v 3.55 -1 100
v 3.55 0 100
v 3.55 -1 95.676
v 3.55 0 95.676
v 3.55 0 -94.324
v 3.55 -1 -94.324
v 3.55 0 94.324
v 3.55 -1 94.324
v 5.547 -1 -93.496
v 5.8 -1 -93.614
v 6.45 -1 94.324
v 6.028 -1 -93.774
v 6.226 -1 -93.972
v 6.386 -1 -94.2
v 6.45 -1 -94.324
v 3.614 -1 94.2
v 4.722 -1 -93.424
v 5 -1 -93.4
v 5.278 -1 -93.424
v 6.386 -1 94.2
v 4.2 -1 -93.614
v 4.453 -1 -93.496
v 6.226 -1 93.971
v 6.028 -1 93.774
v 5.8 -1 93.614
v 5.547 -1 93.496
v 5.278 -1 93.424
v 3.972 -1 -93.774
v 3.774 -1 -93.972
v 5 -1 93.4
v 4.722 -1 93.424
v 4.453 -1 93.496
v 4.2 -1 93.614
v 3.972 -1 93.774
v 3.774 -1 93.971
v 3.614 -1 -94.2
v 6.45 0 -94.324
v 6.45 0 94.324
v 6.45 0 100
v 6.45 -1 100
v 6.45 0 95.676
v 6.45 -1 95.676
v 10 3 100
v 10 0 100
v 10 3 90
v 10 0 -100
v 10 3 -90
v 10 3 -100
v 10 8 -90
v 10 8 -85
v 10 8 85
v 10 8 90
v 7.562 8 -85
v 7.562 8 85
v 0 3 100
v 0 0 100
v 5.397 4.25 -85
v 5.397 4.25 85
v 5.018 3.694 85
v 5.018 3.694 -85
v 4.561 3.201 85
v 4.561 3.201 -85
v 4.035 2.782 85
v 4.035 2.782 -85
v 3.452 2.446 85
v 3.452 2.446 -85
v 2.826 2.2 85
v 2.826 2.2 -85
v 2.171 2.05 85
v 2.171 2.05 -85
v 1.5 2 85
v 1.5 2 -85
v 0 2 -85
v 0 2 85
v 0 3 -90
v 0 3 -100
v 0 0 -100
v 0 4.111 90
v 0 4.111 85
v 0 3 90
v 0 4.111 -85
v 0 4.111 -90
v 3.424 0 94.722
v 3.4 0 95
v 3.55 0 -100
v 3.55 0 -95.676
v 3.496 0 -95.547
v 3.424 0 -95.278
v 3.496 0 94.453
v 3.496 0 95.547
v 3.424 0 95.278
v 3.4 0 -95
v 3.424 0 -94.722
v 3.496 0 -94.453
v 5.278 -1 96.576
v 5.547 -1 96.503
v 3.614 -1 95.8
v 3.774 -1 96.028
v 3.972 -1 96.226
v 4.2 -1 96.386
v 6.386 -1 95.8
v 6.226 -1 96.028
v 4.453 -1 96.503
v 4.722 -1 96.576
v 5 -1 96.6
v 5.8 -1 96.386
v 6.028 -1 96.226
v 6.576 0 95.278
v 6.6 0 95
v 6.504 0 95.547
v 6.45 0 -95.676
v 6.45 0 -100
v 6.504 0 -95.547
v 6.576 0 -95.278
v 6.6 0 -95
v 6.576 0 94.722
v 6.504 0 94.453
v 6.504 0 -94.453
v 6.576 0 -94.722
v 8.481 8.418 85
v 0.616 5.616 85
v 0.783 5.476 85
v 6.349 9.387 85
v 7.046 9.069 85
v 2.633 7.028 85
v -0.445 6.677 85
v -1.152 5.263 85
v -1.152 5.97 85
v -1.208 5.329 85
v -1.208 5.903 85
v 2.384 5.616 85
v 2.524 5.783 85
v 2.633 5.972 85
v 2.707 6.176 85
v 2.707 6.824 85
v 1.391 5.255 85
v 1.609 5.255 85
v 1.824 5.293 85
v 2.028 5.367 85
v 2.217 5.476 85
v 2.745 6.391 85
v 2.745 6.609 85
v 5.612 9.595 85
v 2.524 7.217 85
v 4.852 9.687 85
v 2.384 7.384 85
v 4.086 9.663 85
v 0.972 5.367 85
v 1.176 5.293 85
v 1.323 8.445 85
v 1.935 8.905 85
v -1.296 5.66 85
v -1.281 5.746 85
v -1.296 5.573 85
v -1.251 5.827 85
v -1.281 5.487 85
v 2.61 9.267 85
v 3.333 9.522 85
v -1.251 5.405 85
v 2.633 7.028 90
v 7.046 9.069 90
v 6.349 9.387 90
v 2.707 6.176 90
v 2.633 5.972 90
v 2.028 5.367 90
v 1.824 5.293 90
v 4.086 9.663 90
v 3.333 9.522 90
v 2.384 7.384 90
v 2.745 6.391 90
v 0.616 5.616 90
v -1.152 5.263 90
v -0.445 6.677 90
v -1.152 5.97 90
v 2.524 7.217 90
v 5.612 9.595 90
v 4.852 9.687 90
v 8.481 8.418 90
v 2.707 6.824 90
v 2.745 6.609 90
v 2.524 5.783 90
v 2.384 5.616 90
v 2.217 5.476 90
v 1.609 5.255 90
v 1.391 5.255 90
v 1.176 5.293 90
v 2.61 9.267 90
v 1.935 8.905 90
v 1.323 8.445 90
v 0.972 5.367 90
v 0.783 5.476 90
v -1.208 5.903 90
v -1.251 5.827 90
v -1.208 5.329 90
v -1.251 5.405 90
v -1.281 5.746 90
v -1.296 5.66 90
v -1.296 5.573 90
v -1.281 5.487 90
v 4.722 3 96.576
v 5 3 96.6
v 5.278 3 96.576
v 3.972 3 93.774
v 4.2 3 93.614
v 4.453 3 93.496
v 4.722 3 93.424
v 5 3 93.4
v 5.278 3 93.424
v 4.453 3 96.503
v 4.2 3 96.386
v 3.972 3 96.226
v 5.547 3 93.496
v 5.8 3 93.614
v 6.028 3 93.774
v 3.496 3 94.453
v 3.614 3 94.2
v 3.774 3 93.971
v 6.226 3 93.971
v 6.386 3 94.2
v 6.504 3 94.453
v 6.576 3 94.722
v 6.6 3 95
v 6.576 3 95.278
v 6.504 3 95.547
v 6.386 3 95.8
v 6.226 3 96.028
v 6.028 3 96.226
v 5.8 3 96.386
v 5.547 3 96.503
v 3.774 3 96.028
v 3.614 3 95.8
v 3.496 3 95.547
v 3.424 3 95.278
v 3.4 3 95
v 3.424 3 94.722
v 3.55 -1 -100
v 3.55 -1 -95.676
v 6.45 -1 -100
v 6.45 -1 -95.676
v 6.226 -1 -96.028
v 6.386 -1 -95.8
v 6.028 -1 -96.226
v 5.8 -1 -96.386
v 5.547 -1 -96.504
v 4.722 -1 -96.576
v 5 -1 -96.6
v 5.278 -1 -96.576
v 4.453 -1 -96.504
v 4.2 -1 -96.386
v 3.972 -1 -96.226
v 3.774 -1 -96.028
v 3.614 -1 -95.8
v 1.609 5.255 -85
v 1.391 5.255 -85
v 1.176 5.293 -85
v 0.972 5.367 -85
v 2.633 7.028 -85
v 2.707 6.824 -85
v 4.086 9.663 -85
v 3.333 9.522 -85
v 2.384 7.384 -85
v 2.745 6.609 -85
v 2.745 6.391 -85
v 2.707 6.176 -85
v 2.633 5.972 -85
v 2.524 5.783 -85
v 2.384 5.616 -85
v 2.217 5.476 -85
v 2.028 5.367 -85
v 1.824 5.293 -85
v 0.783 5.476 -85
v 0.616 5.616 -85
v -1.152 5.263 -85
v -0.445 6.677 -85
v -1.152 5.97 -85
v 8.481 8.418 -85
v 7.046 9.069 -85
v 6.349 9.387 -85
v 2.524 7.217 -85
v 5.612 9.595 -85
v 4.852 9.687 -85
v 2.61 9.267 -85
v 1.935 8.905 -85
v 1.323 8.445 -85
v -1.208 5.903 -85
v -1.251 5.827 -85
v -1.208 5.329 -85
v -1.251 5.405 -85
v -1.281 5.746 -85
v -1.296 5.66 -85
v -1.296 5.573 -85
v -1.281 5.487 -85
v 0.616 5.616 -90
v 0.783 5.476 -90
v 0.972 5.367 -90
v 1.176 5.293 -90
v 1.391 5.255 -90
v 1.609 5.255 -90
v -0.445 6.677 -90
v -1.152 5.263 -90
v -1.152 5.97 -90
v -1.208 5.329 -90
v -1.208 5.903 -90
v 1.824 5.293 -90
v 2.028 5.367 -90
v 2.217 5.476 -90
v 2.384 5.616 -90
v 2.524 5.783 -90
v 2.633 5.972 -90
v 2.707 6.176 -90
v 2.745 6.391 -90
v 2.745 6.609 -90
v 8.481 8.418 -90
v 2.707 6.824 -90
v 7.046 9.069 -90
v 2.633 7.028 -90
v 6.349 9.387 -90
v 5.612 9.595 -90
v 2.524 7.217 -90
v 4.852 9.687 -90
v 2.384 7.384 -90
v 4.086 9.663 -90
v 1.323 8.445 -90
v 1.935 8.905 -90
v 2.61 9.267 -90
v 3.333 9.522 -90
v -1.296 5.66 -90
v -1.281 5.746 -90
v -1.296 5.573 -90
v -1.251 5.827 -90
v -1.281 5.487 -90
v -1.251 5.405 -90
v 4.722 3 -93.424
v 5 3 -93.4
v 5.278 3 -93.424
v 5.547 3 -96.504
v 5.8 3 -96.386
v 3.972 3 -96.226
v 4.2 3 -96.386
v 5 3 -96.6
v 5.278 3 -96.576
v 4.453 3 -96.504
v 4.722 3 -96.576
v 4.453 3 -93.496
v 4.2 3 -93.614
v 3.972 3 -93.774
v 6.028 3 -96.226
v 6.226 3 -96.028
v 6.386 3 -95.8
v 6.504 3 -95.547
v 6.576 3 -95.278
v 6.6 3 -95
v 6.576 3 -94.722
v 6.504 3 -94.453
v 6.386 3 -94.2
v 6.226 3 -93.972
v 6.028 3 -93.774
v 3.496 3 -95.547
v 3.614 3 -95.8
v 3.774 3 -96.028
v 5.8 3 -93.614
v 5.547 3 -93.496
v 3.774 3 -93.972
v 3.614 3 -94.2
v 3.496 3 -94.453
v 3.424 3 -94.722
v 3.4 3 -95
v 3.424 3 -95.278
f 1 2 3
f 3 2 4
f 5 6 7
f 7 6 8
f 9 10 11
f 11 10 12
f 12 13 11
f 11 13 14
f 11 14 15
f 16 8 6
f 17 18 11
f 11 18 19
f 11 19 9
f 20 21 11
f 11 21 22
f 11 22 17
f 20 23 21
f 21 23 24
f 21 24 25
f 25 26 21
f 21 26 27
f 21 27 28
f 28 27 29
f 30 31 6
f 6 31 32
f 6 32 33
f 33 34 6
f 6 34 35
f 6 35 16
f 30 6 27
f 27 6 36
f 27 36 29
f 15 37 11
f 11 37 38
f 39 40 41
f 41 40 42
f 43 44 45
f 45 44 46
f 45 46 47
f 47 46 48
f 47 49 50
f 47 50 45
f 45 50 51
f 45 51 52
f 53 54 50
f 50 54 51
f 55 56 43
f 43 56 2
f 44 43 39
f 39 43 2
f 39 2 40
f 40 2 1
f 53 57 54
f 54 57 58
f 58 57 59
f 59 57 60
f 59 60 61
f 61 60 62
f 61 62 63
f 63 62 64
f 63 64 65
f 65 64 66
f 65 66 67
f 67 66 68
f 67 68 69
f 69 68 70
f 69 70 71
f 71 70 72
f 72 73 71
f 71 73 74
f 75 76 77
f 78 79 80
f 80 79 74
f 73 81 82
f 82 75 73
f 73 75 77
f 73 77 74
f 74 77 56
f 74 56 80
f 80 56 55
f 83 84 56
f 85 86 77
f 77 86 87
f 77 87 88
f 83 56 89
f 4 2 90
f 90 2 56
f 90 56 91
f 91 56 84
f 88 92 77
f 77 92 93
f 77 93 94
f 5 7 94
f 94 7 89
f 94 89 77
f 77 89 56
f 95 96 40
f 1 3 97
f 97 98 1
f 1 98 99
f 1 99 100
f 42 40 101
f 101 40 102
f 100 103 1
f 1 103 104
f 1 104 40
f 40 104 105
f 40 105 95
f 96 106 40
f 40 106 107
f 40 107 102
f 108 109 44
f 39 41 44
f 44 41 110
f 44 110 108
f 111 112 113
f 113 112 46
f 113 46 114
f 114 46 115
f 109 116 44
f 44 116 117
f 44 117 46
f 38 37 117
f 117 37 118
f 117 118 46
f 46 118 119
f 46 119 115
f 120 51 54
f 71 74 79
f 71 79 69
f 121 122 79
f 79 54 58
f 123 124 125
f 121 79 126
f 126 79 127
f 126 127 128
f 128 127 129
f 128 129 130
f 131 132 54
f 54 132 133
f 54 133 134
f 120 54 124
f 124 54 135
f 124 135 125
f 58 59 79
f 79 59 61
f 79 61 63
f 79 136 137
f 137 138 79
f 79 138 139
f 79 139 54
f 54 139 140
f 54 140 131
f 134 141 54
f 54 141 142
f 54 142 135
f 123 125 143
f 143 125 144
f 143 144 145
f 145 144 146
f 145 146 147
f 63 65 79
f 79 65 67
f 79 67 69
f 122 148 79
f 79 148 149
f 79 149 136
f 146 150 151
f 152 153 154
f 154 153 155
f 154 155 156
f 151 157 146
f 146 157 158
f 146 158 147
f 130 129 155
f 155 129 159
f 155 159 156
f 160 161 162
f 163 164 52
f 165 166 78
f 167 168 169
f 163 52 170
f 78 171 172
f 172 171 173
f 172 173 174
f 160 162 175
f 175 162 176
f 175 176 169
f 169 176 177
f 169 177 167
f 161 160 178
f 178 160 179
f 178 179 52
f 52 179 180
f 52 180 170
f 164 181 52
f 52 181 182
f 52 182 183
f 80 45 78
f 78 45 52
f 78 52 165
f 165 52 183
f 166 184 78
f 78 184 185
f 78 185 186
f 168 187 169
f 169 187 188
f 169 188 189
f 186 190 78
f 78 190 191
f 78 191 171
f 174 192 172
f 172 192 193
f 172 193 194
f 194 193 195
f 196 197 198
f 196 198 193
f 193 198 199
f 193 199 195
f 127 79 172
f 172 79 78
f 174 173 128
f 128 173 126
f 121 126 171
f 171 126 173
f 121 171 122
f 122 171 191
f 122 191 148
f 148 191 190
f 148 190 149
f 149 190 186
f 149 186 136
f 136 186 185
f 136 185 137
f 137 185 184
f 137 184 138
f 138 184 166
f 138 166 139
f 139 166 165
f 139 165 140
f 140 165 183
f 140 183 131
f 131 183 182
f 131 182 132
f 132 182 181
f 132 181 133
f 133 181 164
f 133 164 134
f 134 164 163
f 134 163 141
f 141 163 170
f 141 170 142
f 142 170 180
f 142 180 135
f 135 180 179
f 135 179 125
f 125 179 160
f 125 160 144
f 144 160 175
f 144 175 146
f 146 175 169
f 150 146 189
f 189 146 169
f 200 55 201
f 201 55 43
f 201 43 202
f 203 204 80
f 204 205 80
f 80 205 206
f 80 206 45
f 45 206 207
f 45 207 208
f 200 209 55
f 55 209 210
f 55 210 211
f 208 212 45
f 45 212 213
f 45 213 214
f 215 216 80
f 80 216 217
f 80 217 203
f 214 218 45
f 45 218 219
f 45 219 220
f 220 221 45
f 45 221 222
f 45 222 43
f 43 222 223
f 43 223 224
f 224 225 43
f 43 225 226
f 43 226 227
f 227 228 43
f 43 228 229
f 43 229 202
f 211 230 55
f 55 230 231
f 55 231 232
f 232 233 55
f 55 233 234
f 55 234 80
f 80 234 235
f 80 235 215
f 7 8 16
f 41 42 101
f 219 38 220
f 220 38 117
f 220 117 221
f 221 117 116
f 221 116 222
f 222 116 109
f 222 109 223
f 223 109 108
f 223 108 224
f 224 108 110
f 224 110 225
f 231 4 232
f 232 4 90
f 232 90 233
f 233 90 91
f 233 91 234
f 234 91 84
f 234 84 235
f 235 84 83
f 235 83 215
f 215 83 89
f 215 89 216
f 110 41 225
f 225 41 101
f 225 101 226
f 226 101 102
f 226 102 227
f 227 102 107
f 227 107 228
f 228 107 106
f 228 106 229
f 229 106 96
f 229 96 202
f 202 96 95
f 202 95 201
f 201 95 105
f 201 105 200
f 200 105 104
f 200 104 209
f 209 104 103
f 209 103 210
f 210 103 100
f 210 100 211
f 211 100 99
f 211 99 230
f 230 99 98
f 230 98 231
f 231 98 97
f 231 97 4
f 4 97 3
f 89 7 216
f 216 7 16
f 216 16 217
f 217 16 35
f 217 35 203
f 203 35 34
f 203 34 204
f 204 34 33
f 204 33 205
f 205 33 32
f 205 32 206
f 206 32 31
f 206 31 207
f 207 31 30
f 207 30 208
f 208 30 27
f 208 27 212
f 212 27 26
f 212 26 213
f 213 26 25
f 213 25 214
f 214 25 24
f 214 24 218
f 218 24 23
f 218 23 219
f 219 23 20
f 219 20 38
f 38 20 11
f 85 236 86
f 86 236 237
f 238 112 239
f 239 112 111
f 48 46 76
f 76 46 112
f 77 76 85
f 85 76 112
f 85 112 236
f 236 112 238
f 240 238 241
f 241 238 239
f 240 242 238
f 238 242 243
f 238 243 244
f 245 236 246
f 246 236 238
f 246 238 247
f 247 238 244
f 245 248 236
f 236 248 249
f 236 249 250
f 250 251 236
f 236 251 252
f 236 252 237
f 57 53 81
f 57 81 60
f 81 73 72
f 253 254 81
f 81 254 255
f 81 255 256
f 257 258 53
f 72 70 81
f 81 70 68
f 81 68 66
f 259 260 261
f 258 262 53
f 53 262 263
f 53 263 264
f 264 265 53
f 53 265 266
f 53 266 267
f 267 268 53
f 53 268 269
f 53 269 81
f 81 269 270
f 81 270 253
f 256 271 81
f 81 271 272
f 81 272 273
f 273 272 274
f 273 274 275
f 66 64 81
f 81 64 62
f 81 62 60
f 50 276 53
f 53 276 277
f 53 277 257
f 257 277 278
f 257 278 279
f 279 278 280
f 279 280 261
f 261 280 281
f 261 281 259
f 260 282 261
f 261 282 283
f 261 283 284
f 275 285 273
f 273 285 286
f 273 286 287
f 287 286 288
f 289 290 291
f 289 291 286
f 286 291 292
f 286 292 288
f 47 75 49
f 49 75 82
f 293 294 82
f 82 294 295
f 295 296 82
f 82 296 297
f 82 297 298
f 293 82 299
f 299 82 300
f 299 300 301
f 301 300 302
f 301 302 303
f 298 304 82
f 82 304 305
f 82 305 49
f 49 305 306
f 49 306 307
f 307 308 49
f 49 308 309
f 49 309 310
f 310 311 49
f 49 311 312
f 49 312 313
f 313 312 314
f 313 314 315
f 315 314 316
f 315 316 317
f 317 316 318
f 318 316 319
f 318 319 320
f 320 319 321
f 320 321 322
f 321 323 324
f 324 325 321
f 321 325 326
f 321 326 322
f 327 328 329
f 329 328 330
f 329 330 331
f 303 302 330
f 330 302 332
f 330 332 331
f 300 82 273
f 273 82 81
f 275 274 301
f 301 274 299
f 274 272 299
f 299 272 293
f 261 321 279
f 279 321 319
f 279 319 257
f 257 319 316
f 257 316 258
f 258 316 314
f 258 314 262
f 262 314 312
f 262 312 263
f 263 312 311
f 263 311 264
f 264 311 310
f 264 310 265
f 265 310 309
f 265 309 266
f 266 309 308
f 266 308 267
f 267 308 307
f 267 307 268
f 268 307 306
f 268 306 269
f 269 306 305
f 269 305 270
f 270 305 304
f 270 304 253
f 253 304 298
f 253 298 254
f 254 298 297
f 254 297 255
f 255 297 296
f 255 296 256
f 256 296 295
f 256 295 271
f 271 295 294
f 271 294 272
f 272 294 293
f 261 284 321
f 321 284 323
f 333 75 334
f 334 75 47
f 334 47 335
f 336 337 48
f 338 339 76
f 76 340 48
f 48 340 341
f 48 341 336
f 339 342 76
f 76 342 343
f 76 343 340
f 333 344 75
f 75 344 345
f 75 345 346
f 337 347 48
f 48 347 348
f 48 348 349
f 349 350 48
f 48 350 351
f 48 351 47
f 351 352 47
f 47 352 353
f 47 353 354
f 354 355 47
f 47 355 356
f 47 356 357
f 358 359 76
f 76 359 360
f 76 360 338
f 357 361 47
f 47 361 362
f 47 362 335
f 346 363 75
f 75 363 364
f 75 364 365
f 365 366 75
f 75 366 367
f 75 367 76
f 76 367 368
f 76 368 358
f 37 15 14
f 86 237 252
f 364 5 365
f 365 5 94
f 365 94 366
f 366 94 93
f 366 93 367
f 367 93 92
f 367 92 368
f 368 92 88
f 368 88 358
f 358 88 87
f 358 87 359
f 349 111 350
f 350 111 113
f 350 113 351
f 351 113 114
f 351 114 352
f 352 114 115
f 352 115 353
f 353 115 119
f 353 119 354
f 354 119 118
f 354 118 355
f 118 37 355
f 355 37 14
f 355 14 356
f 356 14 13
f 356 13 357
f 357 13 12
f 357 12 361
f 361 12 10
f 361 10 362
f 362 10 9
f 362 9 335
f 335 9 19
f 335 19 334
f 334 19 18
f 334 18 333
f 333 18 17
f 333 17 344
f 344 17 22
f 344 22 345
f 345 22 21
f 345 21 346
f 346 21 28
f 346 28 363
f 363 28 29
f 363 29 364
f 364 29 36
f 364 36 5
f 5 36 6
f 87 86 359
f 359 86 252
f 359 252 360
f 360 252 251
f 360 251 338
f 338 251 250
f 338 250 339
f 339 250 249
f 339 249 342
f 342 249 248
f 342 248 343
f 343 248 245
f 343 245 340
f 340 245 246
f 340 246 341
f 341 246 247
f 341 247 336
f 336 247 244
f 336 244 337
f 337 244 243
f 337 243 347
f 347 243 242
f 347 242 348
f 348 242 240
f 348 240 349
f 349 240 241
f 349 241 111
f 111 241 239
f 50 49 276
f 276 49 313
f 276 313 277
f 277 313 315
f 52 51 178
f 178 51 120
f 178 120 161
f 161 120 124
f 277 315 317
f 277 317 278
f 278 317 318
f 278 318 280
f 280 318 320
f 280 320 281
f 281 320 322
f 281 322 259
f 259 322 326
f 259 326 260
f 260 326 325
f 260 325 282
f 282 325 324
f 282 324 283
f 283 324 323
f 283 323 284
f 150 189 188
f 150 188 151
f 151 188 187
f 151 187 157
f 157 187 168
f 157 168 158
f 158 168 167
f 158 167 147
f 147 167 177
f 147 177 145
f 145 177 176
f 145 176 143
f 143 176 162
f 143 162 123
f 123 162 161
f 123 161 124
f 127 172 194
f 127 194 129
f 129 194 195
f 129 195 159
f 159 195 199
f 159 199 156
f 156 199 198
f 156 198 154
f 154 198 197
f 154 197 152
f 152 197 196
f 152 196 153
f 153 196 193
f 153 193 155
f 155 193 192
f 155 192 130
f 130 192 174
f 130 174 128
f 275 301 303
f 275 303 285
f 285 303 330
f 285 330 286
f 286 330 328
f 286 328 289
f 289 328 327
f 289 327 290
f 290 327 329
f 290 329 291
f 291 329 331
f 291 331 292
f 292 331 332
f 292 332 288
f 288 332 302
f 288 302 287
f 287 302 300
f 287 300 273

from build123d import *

# Parameters (mm, degrees)
MAIN_DEPTH                  = 100
FIXFORROLLINGCYLINDER_DEPTH = 5
SKETCH4_W                   = 10
SKETCH4_H                   = 10
HORIZONTALCUT_DEPTH         = 10
SKETCH7_W                   = 10
SKETCH7_H                   = 10
BOSS_EXTRUDE1_DEPTH         = 1
MAKERBEAMHOLE_DEPTH         = 101.931998276
MAKERBEAMHOLE_DEPTH_BACK    = 101.931998276
SKETCH5_R                   = 1.6
FILLET1_R                   = 10
FILLET2_R                   = 5
FILLET3_R                   = 0.5


with BuildPart() as part:
    # Sketch1 → Main (new body)
    with BuildSketch(Plane.XY):
        with BuildLine():
            Line((0, 0), (3.55, 0))
            Line((3.55, 0), (3.55, -1))
            Line((3.55, -1), (6.45, -1))
            Line((6.45, -1), (6.45, 0))
            Line((6.45, 0), (10, 0))
            Line((10, 0), (10, 8))
            Line((10, 8), (7.562177826, 8))
            Line((7.562177826, 8), (5.397114317, 4.25))
            ThreePointArc((5.397114317, 4.25), (3.75, 2.602885683), (1.5, 2))
            Line((1.5, 2), (0, 2))
            Line((0, 2), (0, 0))
        make_face()
    extrude(amount=MAIN_DEPTH)

    # Sketch3 → FixForRollingCylinder (add)
    with BuildSketch(Plane.XY.offset(90)):
        with BuildLine():
            Line((-1.50520382, 5.616116524), (0, 4.110912703))
            Line((0, 4.110912703), (0, 0))
            Line((0, 0), (10, 0))
            Line((10, 0), (10, 8))
            Line((10, 8), (7.562177826, 8))
            Line((7.562177826, 8), (4.220428741, 11.341749085))
            Line((4.220428741, 11.341749085), (1.323223305, 8.444543648))
            Line((1.323223305, 8.444543648), (2.383883476, 7.383883476))
            ThreePointArc((2.383883476, 7.383883476), (2.383883476, 5.616116524), (0.616116524, 5.616116524))
            Line((0.616116524, 5.616116524), (-0.444543648, 6.676776695))
            Line((-0.444543648, 6.676776695), (-1.50520382, 5.616116524))
        make_face()
    extrude(amount=-FIXFORROLLINGCYLINDER_DEPTH)

    # Sketch4 → HorizontalCut (cut)
    with BuildSketch(Plane(origin=(0, 3, 0), x_dir=(1, 0, 0), z_dir=(0, 1, 0))):
        with Locations((5, -95)):
            Rectangle(SKETCH4_W, SKETCH4_H)
    extrude(amount=HORIZONTALCUT_DEPTH, mode=Mode.SUBTRACT)

    # Sketch7 → Boss-Extrude1 (add)
    with BuildSketch(Plane(origin=(0, 3, 0), x_dir=(1, 0, 0), z_dir=(0, 1, 0))):
        with Locations((5, -95)):
            Rectangle(SKETCH7_W, SKETCH7_H)
    extrude(amount=-BOSS_EXTRUDE1_DEPTH)

    # Sketch5 → MakerBeamHole (cut, two sides: drawn at the far end of the back side and taken through both)
    with BuildSketch(Plane(origin=(0, 2, 0), x_dir=(1, 0, 0), z_dir=(0, 1, 0)).offset(-MAKERBEAMHOLE_DEPTH_BACK)):
        with Locations(Location((5, -95, 0), (0, 0, 25.007833235))):
            Circle(SKETCH5_R)
    extrude(amount=MAKERBEAMHOLE_DEPTH + MAKERBEAMHOLE_DEPTH_BACK, mode=Mode.SUBTRACT)

    # Mirror1: part across plane


with BuildPart() as part_1:
    add(part.part)
    add(part.part.mirror(Plane.XY))

    # Fillet1
    # the kernel refuses this fillet: 10 mm, written as the material it adds along each edge
    with BuildSketch(Plane(origin=(7.562177826, 8, -90), x_dir=(-0.7071067811865462, 0.7071067811865489, 0), z_dir=(0, 0, 1))) as fillet1_piece_1:
        with BuildLine():
            CenterArc((3.889088446, -10), FILLET1_R, 90, 34.144980958)
            Line((-1.72380059, -1.72380059), (0, 0))
            Line((0, 0), (3.889088446, 0))
        make_face()
    extrude(amount=5)
    with BuildSketch(Plane(origin=(7.562177826, 8, 90), x_dir=(-0.7071067811865462, 0.7071067811865489, 0), z_dir=(0, 0, -1))) as fillet1_piece_2:
        with BuildLine():
            CenterArc((3.889088446, 10), FILLET1_R, 235.855019042, 34.144980958)
            Line((-1.72380059, 1.72380059), (0, 0))
            Line((0, 0), (3.889088446, 0))
        make_face()
    extrude(amount=5)

    # Fillet2
    # the kernel refuses this fillet: 5 mm, written as the material it takes off along each edge
    with BuildSketch(Plane(origin=(4.220428741, 11.341749085, -100.243168054), x_dir=(0.7792084739241206, -0.6267648316273362, 0), z_dir=(0, 0, 1))) as fillet2_piece_1:
        with BuildLine():
            CenterArc((4.485150557, -4.925762162), FILLET2_R, 99.885624433, 70.299011634)
            Line((-0.441660549, -4.073393505), (-0.93434166, -3.988156639))
            ThreePointArc((-0.93434166, -3.988156639), (-0.717916904, -1.982799786), (-0.497086629, 0.053896967))
            Line((-0.497086629, 0.053896967), (0.053896967, 0.497086629))
            ThreePointArc((0.053896967, 0.497086629), (0.885879241, 0.406878367), (3.540899942, 0.492576216))
            Line((3.540899942, 0.492576216), (3.626740907, 0))
        make_face()
    extrude(amount=25.486336108, mode=Mode.SUBTRACT)
    with BuildSketch(Plane(origin=(4.220428741, 11.341749085, 100.243168054), x_dir=(0.7792084739241207, -0.626764831627336, 0), z_dir=(0, 0, -1))) as fillet2_piece_2:
        with BuildLine():
            CenterArc((4.485150557, 4.925762162), FILLET2_R, 189.815363933, 70.299011634)
            Line((-0.441660549, 4.073393505), (-0.93434166, 3.988156639))
            ThreePointArc((-0.93434166, 3.988156639), (-0.717916904, 1.982799786), (-0.497086629, -0.053896967))
            Line((-0.497086629, -0.053896967), (0.053896967, -0.497086629))
            ThreePointArc((0.053896967, -0.497086629), (0.885879241, -0.406878367), (3.540899942, -0.492576216))
            Line((3.540899942, -0.492576216), (3.626740907, 0))
        make_face()
    extrude(amount=25.486336108, mode=Mode.SUBTRACT)

    # Fillet3
    fillet3_edges = [part_1.edges().sort_by_distance(p)[0] for p in [
        (-1.50520382, 5.616116524, -87.5),
        (-1.50520382, 5.616116524, 87.5),
    ]]
    fillet(fillet3_edges, radius=FILLET3_R)


solid = part_1.part
